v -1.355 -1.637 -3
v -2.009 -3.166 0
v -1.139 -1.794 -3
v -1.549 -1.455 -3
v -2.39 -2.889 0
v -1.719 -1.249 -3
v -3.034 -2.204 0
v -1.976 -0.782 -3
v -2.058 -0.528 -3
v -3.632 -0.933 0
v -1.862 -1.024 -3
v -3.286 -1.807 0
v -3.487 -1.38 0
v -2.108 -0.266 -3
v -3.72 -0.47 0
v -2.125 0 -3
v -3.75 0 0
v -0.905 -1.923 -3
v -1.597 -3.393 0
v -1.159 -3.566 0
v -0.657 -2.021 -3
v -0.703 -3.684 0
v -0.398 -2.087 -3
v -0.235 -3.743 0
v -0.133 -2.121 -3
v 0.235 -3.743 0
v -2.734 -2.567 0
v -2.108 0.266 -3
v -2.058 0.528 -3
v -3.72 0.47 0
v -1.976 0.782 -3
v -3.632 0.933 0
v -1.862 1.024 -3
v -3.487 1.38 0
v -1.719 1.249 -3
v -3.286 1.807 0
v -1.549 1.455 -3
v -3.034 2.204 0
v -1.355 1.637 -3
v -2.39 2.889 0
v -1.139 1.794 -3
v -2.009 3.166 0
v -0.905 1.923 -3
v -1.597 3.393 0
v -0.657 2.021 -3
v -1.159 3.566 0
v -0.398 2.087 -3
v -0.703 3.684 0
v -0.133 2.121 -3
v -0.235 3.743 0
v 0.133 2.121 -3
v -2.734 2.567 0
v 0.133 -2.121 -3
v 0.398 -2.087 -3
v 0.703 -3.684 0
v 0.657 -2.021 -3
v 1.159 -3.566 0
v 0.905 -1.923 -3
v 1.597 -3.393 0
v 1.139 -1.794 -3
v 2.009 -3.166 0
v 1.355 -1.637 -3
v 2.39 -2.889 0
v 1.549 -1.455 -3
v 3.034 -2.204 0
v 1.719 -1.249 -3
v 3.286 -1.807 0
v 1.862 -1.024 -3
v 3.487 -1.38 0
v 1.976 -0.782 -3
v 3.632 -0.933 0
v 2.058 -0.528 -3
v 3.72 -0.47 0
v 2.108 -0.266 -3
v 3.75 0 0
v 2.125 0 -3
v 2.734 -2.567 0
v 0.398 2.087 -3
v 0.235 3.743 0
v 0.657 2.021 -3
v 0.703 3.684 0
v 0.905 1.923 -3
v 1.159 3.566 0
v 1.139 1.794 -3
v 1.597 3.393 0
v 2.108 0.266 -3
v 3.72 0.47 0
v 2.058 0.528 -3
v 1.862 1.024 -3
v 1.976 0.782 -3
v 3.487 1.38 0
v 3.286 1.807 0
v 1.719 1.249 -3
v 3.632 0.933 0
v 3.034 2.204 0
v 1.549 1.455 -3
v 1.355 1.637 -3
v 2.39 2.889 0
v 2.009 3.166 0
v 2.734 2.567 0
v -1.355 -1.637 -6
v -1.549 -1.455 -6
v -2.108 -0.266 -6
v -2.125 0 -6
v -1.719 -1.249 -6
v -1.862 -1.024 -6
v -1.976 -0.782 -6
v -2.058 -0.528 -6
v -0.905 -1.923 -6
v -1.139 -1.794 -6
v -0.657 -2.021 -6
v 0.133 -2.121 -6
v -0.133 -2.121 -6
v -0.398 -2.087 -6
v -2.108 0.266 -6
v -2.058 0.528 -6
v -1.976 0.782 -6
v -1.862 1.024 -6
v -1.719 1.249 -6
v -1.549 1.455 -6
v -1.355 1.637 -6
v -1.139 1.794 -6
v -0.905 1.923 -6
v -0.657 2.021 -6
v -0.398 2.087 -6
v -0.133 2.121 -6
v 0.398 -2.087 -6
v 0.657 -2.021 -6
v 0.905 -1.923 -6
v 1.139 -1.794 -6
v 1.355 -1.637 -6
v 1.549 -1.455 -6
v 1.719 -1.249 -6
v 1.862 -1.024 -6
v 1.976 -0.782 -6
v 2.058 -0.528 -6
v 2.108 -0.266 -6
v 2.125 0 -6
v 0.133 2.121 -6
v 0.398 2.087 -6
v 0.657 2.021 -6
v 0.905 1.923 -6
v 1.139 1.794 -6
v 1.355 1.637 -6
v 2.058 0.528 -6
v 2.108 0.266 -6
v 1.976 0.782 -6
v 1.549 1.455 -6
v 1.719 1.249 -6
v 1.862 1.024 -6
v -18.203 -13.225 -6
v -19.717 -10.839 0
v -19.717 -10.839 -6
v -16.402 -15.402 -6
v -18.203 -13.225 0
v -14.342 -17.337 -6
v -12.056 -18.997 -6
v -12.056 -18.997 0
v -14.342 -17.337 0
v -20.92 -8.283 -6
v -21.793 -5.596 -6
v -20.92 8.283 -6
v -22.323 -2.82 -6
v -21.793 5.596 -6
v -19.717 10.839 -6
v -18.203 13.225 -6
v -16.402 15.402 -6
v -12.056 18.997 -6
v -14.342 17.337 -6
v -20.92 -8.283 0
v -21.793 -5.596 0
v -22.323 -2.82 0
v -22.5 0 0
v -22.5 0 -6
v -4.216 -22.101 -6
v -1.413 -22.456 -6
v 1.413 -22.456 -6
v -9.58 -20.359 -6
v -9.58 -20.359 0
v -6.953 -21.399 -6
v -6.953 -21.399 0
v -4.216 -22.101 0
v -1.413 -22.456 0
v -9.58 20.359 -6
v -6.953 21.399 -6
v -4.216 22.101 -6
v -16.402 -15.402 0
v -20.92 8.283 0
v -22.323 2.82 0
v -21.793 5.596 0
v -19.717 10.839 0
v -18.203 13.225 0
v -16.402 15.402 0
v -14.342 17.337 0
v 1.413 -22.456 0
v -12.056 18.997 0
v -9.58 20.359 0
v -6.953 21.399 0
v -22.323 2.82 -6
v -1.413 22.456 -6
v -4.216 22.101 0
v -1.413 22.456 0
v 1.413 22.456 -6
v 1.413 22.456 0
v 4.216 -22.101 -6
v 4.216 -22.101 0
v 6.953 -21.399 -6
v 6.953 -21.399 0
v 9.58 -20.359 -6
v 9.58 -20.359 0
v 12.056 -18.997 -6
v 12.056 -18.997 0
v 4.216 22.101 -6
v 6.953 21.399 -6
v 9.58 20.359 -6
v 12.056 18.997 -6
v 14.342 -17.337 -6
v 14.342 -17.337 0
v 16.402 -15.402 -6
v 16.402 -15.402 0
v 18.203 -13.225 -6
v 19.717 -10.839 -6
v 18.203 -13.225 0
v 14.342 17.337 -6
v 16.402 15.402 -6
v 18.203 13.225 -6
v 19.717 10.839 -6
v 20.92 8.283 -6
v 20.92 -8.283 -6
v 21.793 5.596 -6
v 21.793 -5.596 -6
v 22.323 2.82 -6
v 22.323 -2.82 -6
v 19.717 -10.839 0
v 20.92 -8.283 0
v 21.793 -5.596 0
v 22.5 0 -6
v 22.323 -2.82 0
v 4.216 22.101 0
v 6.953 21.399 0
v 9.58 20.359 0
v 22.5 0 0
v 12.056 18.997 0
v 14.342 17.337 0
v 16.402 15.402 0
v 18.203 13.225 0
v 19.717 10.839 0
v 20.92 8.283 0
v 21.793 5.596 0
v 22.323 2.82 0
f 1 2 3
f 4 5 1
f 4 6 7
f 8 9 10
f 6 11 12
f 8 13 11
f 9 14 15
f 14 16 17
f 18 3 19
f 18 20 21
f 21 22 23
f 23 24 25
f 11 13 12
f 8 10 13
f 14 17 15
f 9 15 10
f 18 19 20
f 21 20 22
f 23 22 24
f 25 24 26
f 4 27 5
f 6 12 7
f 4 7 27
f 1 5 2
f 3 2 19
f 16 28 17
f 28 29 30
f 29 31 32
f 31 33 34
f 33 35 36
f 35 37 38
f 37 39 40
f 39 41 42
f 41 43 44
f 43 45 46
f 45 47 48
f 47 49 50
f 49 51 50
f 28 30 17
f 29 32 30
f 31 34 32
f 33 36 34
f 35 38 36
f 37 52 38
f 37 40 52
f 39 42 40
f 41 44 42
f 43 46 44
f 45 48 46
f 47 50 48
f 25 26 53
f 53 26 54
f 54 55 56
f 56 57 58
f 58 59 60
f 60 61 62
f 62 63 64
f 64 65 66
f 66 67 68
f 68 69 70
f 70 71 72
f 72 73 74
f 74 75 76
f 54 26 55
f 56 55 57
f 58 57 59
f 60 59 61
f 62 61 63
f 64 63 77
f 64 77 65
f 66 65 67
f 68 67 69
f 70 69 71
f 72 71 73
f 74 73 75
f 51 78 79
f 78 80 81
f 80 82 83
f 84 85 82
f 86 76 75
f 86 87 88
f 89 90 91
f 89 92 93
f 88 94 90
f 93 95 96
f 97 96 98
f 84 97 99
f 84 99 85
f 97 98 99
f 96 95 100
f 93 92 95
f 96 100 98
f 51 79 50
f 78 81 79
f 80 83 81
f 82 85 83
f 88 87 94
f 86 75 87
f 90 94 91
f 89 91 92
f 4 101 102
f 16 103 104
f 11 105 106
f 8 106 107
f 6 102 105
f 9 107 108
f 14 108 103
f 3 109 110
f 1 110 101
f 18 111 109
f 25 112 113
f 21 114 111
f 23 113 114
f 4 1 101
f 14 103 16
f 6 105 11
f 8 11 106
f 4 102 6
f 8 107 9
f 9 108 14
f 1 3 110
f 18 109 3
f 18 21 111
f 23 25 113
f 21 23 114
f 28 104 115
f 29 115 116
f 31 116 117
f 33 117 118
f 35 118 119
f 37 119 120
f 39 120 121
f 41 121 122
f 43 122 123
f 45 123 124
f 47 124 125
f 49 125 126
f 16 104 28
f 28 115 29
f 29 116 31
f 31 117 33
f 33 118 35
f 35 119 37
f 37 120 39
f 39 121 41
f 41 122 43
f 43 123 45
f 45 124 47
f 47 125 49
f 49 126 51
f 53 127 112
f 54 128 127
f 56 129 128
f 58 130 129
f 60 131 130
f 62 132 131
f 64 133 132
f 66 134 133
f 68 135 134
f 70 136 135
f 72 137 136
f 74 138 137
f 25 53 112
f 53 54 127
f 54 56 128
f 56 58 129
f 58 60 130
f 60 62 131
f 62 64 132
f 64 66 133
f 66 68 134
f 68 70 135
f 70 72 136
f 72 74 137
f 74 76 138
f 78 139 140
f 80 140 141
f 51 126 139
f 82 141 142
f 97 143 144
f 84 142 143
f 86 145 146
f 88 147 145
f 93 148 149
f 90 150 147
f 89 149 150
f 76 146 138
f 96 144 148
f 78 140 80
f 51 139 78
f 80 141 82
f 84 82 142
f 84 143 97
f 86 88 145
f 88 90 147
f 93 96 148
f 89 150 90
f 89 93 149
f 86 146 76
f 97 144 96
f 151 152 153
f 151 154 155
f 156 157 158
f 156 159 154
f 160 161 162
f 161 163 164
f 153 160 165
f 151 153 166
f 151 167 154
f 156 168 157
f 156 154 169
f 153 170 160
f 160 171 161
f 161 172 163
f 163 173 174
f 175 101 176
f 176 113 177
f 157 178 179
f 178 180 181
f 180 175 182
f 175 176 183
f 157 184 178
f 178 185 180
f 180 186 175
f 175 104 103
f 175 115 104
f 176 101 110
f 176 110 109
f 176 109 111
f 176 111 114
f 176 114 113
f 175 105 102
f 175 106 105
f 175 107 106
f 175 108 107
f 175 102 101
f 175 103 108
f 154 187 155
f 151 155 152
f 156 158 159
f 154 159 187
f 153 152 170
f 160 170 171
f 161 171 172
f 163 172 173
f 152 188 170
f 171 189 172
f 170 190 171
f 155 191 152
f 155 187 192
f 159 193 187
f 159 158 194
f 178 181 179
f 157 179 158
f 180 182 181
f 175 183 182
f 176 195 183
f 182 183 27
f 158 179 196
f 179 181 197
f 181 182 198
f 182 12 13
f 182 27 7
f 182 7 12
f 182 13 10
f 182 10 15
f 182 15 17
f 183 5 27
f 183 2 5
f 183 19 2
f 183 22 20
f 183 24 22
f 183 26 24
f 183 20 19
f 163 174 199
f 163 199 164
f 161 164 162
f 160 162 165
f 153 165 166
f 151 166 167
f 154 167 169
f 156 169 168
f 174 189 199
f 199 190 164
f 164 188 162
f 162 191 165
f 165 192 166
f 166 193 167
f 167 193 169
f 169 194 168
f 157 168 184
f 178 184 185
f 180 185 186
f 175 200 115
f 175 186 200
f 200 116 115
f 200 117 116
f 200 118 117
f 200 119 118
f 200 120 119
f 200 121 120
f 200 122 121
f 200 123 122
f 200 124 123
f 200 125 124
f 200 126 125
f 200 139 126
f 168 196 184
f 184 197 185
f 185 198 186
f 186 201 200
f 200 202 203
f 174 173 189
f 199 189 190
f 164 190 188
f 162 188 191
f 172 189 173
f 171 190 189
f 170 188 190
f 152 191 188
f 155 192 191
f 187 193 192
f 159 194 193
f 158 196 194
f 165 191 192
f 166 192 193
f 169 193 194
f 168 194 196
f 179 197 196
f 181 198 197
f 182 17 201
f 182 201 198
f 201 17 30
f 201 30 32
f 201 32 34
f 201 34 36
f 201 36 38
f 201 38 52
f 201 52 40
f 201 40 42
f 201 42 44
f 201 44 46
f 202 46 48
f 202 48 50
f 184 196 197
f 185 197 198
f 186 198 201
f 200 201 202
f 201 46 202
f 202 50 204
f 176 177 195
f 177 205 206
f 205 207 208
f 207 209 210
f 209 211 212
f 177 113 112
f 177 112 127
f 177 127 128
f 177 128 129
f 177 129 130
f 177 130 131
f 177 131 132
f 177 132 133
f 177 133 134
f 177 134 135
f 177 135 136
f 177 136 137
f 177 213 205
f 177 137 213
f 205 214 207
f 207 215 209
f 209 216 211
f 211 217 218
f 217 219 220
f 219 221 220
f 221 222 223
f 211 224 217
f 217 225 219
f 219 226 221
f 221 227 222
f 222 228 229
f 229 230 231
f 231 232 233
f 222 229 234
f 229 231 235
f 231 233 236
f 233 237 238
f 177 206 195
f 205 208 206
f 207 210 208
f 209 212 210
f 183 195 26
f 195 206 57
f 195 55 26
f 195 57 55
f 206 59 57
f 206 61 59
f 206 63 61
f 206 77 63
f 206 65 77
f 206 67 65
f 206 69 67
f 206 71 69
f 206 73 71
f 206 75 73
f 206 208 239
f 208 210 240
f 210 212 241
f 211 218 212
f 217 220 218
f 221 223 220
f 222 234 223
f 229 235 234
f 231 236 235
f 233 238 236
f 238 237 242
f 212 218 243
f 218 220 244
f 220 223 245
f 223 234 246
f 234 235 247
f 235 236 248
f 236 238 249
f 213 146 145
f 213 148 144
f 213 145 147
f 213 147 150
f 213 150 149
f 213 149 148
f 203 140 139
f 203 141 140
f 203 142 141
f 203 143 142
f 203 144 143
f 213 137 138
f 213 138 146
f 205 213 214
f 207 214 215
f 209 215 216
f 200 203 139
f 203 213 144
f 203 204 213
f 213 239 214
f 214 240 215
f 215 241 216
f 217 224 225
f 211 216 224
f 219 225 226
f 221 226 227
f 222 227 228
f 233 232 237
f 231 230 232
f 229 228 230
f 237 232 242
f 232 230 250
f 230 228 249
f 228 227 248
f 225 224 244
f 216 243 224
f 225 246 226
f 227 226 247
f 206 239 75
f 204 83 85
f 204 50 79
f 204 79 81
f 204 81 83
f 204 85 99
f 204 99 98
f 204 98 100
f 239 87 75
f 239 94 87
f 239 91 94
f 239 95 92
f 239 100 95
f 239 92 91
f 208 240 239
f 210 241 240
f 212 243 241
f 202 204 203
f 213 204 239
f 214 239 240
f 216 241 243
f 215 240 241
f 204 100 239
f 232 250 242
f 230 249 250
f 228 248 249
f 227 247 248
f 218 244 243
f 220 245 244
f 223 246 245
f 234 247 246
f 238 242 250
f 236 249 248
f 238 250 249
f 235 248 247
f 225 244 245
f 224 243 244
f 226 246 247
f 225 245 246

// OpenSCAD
$fn = 50;

difference() {
	union() {
		translate(v = [0, 0, -6.0]) {
			cylinder(h = 6, r = 22.5);
		}
	}
	union() {
		translate(v = [0, 0, 0]) {
			rotate(a = [0, 0, 0]) {
				difference() {
					union() {
						translate(v = [0, 0, -9.0]) {
							cylinder(h = 9, r = 2.0);
						}
						translate(v = [0, 0, -3]) {
							cylinder(h = 3, r1 = 2.125, r2 = 3.75);
						}
						translate(v = [0, 0, -9.0]) {
							cylinder(h = 9, r = 2.125);
						}
						translate(v = [0, 0, -9.0]) {
							cylinder(h = 9, r = 2.0);
						}
					}
					union();
				}
			}
		}
	}
}
